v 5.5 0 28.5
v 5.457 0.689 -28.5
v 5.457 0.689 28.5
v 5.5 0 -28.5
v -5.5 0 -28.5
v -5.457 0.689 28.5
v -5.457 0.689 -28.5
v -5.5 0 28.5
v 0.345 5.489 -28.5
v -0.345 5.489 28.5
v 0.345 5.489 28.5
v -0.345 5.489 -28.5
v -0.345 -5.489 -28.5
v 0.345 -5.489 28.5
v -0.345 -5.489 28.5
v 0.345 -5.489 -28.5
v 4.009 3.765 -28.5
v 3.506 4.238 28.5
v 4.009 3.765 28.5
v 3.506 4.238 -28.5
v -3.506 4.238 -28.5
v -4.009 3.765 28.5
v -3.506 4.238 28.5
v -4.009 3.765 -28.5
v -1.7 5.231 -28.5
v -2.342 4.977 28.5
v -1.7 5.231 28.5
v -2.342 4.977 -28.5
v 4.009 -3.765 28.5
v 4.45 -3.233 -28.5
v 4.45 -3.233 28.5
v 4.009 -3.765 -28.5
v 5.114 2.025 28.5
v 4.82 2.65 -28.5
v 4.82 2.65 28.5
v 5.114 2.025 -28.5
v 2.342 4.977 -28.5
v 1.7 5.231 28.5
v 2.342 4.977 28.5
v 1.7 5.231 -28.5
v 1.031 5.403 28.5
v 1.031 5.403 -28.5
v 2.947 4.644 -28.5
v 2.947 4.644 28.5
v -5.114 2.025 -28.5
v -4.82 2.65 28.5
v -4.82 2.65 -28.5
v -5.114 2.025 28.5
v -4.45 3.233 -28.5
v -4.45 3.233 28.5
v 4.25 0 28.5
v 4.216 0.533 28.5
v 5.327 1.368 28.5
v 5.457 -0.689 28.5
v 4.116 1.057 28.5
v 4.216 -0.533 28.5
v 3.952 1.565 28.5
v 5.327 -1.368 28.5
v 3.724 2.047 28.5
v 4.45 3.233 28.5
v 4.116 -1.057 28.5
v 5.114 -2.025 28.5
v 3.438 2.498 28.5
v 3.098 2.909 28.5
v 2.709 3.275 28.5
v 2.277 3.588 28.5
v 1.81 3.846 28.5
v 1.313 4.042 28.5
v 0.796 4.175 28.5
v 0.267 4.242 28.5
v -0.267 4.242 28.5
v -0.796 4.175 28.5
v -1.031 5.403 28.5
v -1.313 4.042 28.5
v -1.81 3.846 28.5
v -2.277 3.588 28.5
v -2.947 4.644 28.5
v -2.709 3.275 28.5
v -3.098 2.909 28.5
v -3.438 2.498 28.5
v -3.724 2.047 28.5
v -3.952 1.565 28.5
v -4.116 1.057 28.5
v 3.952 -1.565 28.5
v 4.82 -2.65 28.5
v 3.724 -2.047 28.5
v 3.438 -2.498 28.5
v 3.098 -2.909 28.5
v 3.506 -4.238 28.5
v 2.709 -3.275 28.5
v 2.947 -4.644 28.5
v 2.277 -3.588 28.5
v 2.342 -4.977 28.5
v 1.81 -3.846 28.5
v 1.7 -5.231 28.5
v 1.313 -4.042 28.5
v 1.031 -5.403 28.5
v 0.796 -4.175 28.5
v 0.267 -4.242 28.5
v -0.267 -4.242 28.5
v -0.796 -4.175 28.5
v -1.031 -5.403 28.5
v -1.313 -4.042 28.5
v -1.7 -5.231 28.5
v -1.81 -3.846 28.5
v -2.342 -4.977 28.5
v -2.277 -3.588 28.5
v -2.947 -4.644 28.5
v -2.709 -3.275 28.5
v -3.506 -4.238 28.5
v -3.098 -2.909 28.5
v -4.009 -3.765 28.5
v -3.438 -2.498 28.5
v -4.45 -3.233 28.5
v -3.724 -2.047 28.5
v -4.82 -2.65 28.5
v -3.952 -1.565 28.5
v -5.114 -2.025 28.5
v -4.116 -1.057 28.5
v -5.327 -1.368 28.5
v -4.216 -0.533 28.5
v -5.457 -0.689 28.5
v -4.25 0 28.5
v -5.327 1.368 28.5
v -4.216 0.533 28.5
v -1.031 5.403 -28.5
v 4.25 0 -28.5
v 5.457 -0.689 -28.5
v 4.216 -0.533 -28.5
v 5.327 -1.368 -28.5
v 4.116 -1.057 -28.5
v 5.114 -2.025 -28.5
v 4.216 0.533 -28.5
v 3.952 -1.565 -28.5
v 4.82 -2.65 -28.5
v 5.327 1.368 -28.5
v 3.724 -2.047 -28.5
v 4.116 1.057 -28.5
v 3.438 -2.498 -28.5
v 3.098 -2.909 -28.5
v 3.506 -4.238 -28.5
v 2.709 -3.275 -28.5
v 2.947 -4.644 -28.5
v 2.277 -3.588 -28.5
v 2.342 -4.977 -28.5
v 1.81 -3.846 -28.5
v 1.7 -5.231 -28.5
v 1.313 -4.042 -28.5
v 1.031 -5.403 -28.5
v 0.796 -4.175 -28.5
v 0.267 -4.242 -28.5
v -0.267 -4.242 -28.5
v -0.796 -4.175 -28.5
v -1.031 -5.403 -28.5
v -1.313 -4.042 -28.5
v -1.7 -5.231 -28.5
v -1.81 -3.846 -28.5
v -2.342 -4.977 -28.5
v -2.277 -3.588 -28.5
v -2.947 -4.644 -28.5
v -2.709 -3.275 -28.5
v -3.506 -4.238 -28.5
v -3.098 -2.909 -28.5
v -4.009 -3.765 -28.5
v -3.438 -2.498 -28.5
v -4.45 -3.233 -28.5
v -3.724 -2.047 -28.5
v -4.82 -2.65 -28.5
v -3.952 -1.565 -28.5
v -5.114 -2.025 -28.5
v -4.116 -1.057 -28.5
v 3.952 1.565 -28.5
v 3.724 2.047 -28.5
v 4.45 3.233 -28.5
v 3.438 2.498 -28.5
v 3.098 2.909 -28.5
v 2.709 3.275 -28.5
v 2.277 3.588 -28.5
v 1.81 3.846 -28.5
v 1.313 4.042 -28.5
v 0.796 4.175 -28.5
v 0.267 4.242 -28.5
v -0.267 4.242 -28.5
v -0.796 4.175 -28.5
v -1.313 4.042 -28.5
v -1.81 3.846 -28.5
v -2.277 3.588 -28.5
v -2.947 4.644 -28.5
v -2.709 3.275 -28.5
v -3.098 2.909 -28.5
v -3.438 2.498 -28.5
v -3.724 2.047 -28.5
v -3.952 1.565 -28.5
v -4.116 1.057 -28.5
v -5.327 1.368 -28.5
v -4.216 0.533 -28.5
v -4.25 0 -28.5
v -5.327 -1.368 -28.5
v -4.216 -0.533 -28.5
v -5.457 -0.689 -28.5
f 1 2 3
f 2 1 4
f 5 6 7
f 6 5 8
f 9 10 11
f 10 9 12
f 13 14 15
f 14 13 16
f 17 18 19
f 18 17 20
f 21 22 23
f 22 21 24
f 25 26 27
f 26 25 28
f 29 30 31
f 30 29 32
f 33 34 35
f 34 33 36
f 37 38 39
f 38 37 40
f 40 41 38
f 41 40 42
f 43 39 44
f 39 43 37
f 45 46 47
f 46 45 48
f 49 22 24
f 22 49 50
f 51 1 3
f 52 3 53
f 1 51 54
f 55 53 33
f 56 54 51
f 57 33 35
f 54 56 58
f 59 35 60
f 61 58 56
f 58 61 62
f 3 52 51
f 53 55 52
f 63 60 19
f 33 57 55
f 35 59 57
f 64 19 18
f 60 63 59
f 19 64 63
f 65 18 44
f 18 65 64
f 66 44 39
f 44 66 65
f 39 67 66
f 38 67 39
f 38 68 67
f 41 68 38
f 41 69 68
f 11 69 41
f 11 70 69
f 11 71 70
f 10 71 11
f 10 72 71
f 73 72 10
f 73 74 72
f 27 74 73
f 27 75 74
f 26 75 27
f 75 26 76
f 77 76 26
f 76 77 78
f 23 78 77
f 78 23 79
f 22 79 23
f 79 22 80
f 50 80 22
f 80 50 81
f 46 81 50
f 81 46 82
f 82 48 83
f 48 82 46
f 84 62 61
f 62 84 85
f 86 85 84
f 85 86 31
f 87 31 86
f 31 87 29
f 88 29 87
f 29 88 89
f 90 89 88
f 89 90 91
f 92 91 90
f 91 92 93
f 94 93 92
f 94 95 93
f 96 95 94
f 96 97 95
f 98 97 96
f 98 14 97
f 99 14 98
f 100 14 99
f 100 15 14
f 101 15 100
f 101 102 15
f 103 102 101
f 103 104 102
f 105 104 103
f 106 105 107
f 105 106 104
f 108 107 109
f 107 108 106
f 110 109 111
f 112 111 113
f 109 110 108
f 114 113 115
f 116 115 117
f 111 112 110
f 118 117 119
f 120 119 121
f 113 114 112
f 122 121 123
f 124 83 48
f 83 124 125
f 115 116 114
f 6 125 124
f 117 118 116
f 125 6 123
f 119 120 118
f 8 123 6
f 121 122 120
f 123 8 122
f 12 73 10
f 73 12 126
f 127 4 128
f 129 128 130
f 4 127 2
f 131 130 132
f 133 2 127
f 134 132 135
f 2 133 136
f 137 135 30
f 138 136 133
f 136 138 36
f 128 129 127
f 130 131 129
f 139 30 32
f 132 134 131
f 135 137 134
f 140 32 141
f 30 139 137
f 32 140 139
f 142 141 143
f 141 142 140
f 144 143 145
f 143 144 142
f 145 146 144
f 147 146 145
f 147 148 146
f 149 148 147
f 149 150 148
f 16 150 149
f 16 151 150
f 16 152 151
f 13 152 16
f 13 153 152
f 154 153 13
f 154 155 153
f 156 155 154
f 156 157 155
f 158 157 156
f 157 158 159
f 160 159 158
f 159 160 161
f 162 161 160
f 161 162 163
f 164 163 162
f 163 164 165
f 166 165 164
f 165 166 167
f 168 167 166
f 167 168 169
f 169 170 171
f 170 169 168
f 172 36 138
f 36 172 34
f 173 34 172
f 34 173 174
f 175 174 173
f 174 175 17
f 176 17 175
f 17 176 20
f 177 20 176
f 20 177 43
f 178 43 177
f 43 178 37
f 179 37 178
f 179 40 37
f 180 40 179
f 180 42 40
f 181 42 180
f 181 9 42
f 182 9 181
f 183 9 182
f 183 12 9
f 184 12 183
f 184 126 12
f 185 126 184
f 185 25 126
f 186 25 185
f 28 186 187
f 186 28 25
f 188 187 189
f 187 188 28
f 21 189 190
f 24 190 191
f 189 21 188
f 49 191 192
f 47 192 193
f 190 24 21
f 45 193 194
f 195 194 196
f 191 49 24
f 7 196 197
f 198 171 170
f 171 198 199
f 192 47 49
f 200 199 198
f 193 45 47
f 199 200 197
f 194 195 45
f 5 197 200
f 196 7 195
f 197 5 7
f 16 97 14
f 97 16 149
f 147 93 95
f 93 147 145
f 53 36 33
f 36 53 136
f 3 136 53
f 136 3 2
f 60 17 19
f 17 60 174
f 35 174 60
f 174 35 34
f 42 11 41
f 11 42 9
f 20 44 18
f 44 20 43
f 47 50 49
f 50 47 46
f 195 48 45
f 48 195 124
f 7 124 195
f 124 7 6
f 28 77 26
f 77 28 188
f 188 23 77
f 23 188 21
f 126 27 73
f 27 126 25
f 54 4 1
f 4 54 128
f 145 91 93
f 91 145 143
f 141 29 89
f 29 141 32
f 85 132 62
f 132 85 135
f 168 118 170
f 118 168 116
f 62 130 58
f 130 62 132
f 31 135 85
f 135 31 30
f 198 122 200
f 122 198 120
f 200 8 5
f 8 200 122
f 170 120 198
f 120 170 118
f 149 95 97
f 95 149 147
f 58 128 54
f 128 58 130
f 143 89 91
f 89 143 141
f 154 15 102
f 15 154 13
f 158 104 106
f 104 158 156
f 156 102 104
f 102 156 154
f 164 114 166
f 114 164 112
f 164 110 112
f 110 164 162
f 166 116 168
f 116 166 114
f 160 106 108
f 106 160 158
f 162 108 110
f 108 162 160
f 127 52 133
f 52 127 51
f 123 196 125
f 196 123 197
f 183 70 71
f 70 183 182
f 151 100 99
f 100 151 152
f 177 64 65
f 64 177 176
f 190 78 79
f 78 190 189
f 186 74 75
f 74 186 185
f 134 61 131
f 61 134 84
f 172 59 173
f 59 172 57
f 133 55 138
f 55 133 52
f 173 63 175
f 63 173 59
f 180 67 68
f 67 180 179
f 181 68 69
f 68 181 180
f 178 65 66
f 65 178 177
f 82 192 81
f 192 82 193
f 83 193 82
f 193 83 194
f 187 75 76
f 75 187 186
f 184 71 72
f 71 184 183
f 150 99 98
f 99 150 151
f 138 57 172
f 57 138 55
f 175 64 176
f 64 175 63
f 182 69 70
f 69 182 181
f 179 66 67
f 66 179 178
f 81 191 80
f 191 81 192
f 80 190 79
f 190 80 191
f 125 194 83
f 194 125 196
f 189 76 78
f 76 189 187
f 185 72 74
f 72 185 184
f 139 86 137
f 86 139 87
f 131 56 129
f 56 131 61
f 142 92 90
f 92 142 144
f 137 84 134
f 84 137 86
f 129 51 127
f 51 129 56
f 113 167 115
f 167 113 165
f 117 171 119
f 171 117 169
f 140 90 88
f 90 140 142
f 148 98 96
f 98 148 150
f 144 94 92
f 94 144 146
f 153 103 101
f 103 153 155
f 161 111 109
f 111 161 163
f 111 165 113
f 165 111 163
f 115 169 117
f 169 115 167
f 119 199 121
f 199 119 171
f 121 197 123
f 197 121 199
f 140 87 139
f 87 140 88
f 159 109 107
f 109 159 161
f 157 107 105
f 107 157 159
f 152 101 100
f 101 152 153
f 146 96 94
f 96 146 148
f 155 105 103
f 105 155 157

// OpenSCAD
$fn = 50;


difference() {
	union() {
		translate(v = [0, 0, -28.5000000000]) {
			cylinder(h = 57, r = 5.5000000000);
		}
	}
	union() {
		translate(v = [0, 0, -100.0000000000]) {
			cylinder(h = 200, r = 4.2500000000);
		}
	}
}
